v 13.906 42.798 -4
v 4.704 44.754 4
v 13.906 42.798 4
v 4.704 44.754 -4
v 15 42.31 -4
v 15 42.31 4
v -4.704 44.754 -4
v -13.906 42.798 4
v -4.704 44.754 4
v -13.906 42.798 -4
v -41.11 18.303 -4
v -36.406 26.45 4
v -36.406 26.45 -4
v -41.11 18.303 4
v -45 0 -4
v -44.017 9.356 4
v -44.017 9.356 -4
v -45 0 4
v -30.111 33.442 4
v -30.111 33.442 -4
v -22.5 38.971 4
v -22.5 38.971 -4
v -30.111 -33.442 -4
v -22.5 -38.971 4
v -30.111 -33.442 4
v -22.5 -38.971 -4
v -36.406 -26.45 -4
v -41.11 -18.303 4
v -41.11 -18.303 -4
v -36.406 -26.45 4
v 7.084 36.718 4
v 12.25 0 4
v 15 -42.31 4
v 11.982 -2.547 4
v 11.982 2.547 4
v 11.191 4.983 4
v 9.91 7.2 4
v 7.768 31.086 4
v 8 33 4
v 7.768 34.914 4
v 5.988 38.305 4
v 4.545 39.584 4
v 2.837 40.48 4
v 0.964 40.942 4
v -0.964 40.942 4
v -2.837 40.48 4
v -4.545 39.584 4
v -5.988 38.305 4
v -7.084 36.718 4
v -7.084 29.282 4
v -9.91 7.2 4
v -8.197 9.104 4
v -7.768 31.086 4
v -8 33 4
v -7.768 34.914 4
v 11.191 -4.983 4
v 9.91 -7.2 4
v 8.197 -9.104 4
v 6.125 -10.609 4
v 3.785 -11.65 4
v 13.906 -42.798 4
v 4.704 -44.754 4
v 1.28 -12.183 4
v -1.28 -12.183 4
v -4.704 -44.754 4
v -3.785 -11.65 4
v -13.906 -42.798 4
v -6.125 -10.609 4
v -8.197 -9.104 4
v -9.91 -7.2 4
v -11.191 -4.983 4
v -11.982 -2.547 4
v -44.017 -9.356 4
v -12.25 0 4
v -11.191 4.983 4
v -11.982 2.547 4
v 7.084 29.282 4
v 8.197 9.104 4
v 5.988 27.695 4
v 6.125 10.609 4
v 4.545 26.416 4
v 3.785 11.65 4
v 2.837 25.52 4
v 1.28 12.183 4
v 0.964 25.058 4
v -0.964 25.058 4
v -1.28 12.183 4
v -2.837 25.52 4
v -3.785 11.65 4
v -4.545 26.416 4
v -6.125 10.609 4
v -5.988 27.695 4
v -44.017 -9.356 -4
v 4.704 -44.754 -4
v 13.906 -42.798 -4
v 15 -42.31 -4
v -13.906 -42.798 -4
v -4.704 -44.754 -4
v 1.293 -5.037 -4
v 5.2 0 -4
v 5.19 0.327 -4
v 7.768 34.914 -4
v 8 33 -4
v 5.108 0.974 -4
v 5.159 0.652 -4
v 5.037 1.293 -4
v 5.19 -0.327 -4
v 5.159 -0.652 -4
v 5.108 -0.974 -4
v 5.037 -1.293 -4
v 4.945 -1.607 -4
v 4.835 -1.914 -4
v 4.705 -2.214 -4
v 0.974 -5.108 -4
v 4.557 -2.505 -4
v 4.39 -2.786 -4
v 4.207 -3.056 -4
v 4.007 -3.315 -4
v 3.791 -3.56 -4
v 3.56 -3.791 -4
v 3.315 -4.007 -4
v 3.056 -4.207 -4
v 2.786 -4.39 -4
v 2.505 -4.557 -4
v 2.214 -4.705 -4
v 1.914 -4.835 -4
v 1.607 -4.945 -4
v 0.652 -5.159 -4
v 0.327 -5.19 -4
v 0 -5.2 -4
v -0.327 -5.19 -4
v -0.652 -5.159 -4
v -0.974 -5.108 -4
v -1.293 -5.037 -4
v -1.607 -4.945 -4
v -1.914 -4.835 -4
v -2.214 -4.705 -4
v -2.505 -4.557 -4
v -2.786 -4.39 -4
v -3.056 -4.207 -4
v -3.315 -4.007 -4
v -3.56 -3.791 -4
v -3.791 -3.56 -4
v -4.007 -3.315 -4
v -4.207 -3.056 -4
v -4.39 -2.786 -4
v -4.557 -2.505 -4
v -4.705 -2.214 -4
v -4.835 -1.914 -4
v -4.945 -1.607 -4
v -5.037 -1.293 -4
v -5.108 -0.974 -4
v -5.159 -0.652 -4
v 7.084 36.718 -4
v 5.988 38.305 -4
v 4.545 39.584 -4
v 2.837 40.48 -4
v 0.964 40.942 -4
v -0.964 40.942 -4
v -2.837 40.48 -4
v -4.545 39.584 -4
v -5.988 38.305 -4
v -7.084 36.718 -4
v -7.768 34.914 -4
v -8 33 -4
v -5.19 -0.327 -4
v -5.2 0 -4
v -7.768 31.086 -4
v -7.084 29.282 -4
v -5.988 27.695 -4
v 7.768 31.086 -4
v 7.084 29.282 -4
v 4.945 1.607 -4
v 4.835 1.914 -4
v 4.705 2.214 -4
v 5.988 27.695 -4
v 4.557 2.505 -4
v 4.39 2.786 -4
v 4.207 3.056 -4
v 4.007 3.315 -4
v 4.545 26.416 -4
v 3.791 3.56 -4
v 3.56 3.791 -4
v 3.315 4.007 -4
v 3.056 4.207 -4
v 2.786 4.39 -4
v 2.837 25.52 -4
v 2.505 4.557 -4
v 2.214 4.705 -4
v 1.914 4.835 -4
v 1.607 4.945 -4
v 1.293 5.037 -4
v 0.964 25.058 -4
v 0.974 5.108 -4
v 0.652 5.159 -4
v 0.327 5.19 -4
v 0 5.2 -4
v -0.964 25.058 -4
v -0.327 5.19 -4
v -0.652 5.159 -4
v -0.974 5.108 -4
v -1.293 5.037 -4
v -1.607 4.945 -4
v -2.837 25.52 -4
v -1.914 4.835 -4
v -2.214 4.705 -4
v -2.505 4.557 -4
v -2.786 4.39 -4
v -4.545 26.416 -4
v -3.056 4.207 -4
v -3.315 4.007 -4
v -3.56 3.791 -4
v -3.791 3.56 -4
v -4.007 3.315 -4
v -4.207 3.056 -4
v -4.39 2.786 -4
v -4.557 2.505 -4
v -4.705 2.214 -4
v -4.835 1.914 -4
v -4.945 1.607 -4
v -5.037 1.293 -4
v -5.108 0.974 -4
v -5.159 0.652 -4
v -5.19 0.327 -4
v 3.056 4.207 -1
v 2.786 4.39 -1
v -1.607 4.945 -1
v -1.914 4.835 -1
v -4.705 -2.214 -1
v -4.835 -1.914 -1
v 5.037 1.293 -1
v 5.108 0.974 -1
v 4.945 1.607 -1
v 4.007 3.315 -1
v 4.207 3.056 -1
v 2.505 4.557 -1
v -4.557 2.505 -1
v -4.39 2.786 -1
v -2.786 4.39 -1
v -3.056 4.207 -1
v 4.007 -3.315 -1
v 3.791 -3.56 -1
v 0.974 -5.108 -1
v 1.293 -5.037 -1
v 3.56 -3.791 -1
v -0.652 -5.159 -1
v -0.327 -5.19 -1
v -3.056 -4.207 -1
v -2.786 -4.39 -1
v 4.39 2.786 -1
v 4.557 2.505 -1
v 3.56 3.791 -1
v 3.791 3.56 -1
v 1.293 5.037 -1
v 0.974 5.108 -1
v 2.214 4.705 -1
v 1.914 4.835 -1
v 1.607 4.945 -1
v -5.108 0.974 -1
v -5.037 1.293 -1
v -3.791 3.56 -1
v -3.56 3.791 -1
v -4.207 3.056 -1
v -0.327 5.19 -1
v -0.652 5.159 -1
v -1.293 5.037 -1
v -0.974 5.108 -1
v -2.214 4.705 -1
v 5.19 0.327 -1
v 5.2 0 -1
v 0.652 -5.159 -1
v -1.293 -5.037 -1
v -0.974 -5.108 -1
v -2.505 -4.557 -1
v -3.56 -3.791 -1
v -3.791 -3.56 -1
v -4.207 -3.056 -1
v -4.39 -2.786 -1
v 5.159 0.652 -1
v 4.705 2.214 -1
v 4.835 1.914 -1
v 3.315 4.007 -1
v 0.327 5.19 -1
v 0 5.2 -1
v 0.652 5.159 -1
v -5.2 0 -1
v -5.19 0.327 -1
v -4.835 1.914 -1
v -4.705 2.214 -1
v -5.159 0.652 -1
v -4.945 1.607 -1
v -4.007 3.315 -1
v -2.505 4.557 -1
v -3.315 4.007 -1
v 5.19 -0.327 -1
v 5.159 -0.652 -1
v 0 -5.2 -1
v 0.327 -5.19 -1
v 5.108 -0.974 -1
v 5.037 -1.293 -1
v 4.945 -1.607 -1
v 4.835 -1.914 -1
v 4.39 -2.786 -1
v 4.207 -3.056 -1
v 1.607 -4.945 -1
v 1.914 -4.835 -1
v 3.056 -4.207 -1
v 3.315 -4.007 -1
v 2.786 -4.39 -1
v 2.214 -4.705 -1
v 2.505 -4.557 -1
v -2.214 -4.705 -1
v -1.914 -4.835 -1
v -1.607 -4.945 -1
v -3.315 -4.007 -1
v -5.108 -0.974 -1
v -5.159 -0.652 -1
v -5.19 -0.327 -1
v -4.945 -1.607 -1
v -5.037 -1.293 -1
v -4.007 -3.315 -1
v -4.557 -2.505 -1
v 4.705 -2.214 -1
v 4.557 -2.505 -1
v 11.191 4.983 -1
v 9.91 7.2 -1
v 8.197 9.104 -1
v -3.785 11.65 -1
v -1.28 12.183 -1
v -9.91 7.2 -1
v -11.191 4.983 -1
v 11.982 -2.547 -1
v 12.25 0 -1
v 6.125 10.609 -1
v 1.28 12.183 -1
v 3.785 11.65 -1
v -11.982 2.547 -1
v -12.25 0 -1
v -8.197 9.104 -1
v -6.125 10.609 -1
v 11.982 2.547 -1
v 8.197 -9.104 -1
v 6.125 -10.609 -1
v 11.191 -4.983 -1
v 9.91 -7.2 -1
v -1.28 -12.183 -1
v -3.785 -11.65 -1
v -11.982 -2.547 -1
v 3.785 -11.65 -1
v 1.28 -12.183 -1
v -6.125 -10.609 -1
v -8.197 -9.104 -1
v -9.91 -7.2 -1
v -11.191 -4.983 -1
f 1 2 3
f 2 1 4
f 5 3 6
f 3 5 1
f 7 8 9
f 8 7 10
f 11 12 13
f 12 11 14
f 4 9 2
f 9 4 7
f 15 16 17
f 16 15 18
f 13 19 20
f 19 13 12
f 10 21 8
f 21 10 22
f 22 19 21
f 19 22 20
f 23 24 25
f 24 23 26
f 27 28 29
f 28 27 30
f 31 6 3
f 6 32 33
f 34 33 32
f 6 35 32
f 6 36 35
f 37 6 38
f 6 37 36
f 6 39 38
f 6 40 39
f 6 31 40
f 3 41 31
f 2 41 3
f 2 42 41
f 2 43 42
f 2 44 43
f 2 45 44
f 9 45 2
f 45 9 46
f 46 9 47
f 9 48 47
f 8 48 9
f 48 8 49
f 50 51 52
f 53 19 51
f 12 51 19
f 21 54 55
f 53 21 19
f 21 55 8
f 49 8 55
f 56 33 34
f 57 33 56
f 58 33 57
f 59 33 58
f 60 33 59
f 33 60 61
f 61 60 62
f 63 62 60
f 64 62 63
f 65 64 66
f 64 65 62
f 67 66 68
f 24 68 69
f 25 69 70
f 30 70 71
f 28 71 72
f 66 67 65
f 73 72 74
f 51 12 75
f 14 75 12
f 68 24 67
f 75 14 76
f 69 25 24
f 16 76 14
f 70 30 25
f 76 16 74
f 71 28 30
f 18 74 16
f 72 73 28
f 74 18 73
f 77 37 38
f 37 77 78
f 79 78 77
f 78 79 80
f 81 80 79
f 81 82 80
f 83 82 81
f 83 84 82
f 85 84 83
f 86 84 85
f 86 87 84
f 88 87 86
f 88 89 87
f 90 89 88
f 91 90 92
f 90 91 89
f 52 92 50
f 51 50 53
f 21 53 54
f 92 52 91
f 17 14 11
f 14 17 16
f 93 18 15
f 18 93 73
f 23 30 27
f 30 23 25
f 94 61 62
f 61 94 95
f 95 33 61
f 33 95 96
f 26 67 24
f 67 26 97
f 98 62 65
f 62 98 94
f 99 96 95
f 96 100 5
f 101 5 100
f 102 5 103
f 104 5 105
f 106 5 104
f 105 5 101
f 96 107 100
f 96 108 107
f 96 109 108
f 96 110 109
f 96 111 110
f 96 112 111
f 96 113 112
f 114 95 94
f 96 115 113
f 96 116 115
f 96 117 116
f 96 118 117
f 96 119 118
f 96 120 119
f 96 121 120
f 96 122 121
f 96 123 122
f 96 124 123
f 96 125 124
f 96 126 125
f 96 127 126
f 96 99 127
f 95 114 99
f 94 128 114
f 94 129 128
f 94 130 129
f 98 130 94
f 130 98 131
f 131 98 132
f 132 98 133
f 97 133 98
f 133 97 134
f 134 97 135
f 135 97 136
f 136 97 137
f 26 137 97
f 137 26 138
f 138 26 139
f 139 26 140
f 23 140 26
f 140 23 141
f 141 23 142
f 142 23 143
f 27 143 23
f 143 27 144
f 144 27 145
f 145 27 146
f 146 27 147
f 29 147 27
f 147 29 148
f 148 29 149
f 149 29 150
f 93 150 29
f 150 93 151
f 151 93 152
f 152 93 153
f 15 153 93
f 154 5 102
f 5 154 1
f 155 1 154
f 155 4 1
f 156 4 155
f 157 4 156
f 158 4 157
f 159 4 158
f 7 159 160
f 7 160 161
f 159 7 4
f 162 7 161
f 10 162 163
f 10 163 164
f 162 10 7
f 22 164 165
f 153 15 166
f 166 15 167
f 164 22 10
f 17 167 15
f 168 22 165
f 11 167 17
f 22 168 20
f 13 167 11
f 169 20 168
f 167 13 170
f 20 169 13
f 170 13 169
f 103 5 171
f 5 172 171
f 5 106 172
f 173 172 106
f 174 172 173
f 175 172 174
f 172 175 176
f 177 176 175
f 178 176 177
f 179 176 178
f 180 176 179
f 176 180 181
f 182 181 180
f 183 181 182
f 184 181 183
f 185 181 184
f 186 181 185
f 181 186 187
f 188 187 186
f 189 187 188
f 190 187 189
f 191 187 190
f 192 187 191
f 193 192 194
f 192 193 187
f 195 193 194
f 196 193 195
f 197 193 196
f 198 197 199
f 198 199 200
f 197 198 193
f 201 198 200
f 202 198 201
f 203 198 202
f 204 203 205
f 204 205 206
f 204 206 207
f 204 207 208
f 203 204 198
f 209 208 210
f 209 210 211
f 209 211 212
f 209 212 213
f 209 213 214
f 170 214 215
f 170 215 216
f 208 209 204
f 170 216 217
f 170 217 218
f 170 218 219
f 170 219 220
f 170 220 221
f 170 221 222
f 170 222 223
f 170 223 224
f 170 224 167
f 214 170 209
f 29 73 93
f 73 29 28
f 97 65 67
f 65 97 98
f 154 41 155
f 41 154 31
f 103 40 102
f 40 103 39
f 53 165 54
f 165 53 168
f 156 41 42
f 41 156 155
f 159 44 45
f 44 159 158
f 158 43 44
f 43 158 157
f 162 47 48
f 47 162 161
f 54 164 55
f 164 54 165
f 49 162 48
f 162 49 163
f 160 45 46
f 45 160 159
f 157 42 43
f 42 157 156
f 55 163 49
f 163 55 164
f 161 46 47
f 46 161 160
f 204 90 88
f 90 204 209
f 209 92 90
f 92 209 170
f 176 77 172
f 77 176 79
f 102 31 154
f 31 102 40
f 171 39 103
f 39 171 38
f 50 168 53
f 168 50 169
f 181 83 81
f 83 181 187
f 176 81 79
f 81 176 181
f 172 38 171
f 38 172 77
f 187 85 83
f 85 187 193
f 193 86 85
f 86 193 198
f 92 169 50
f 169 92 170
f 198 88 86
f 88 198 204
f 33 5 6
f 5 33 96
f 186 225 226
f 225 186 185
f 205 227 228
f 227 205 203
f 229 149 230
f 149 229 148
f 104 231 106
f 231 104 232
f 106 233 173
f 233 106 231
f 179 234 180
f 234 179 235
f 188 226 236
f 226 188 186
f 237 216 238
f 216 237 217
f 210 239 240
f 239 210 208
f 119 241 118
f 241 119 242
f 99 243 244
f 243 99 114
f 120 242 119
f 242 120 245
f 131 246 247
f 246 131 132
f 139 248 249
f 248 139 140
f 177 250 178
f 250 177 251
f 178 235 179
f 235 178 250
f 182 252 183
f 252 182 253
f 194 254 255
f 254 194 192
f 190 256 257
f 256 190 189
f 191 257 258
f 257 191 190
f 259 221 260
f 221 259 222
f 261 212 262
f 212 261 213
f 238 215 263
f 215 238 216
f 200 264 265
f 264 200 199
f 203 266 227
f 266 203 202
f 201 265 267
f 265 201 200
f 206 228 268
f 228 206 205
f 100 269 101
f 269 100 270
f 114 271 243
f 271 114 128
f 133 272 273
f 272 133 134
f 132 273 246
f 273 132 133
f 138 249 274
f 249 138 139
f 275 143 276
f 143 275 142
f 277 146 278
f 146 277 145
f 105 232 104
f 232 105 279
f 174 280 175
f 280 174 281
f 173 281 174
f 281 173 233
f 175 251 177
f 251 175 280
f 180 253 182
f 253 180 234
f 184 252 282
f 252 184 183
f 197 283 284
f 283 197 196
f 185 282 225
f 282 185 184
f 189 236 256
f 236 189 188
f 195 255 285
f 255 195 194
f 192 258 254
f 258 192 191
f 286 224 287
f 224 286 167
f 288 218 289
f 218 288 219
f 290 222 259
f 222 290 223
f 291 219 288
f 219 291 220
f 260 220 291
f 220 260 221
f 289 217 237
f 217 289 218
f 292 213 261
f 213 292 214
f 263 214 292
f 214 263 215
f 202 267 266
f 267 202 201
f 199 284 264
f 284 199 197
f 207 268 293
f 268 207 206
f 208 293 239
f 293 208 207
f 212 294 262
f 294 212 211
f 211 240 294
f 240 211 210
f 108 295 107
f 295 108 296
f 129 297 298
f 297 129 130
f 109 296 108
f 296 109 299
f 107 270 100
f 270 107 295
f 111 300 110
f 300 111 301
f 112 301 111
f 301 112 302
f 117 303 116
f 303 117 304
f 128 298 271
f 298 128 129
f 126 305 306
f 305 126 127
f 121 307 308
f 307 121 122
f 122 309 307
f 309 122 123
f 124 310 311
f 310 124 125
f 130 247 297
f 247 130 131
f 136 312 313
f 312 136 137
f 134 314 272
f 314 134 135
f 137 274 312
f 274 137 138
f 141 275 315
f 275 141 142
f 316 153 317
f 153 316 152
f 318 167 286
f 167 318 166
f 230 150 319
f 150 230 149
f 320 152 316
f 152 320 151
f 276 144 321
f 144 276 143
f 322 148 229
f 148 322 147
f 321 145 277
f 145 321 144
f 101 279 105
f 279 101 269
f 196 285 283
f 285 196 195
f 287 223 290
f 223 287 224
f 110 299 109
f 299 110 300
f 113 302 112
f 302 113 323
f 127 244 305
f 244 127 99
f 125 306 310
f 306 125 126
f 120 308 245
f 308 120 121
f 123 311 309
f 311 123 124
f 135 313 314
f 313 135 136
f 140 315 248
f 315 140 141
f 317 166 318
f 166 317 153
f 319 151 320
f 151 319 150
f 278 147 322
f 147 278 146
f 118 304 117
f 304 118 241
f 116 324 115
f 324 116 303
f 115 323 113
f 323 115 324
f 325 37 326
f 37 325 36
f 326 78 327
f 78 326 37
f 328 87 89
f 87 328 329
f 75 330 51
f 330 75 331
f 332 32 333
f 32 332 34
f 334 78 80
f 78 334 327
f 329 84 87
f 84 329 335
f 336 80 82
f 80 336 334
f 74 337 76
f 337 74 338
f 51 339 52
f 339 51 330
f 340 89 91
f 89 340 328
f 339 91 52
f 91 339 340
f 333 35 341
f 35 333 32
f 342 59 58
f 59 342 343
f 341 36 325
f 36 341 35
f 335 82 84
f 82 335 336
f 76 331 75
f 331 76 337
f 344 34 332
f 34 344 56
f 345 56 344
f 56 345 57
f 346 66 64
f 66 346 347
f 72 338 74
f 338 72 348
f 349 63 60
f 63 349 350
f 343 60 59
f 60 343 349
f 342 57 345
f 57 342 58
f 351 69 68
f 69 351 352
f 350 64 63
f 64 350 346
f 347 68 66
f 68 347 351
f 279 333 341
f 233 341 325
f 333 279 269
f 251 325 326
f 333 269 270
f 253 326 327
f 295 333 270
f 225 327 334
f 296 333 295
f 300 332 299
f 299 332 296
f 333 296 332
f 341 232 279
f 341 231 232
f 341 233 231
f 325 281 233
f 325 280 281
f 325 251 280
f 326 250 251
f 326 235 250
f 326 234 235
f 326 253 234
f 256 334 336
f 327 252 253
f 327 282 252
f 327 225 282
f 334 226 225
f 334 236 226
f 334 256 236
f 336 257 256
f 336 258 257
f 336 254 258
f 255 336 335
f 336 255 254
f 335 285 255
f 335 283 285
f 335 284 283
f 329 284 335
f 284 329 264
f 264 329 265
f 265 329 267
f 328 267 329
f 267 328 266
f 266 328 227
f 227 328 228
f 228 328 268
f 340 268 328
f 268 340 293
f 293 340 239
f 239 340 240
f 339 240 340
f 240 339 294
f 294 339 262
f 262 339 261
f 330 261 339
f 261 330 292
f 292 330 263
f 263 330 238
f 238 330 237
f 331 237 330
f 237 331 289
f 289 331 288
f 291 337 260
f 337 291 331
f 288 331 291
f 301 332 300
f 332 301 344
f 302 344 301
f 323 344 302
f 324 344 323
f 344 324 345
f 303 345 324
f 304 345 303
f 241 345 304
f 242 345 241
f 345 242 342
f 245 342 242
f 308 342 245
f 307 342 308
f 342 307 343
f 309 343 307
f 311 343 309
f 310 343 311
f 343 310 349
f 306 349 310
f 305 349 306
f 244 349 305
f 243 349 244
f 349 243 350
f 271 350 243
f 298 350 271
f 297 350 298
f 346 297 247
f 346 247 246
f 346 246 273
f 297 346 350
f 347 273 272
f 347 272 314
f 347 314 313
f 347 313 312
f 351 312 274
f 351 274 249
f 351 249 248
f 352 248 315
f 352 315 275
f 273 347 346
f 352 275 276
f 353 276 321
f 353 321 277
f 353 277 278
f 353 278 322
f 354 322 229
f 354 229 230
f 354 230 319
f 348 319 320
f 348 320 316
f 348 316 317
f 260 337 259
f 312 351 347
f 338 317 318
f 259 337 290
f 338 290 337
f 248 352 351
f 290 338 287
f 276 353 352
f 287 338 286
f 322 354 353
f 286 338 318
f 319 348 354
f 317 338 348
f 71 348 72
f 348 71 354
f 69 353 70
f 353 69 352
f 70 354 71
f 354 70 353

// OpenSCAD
// file: constants.scad
//-------------------------------------------------------------
//-- Futaba Horn from Servo wheel by Juan Gonzalez (obijuan) juan@iearobotics.com
//-------------------------------------------------------------

//-- Wheel parameters
wheel_or_idiam = 50;                   //-- O-ring inner diameter
wheel_or_diam = 1;                     //-- O-ring section diameter
wheel_height = 2*wheel_or_diam+0;     //-- Wheel height: change the 0 for 
                                      //-- other value (0 equals minimun height)
//-- Parameters common to all horns
horn_drill_diam = 2;
horn_height = 8;        //-- Total height: shaft + plate
horn_plate_height = 2;  //-- plate height

//-- Futaba 3003 servo rounded horn parameters
rh_diam1 = 10;  //-- Rounded horn small diameter
rh_diam2 = 24; //-- Rounded horn big diameter
rounded_horn_drill_distance = 7.3;

//-- Futaba 3003 4-arm horn parameters
a4h_end_diam = 5;
a4h_center_diam = 10;
a4h_arm_length = 15;
a4h_drill_distance = 13.3;

//-- Pill parameters
pill_diam = 16;
pill_height = 8;
pill_holder = pill_diam * 1.5;

length = 70;
// main file
include <constants.scad>;

module wheel3() {
	difference() {
		cylinder(r=45, h=pill_height, center=true);
		for (i = [0 : 0]) {
			translate([0, 0, 0])
			rotate([0,0,i*36])
				translate([0, 33, -pill_height / 2])
					cylinder(h=pill_height + 2, r=pill_diam / 2);
		}

		translate([60, 0, -1])
			cube([90, 90, pill_height + 2], center=true);

		//-- Inner drill
		translate([0, 0, -pill_height / 2])
			cylinder(h=pill_height, r=rh_diam1/2+0.2,$fn=100);

		//-- Carved circle for the Futaba rounded horn
		translate([0, 0, pill_height / 2 - 5])
			cylinder(r=rh_diam2/2+0.25, h=12.1, $fn=30);
	}
}


//mirror([1,1,0]) 
wheel3();
